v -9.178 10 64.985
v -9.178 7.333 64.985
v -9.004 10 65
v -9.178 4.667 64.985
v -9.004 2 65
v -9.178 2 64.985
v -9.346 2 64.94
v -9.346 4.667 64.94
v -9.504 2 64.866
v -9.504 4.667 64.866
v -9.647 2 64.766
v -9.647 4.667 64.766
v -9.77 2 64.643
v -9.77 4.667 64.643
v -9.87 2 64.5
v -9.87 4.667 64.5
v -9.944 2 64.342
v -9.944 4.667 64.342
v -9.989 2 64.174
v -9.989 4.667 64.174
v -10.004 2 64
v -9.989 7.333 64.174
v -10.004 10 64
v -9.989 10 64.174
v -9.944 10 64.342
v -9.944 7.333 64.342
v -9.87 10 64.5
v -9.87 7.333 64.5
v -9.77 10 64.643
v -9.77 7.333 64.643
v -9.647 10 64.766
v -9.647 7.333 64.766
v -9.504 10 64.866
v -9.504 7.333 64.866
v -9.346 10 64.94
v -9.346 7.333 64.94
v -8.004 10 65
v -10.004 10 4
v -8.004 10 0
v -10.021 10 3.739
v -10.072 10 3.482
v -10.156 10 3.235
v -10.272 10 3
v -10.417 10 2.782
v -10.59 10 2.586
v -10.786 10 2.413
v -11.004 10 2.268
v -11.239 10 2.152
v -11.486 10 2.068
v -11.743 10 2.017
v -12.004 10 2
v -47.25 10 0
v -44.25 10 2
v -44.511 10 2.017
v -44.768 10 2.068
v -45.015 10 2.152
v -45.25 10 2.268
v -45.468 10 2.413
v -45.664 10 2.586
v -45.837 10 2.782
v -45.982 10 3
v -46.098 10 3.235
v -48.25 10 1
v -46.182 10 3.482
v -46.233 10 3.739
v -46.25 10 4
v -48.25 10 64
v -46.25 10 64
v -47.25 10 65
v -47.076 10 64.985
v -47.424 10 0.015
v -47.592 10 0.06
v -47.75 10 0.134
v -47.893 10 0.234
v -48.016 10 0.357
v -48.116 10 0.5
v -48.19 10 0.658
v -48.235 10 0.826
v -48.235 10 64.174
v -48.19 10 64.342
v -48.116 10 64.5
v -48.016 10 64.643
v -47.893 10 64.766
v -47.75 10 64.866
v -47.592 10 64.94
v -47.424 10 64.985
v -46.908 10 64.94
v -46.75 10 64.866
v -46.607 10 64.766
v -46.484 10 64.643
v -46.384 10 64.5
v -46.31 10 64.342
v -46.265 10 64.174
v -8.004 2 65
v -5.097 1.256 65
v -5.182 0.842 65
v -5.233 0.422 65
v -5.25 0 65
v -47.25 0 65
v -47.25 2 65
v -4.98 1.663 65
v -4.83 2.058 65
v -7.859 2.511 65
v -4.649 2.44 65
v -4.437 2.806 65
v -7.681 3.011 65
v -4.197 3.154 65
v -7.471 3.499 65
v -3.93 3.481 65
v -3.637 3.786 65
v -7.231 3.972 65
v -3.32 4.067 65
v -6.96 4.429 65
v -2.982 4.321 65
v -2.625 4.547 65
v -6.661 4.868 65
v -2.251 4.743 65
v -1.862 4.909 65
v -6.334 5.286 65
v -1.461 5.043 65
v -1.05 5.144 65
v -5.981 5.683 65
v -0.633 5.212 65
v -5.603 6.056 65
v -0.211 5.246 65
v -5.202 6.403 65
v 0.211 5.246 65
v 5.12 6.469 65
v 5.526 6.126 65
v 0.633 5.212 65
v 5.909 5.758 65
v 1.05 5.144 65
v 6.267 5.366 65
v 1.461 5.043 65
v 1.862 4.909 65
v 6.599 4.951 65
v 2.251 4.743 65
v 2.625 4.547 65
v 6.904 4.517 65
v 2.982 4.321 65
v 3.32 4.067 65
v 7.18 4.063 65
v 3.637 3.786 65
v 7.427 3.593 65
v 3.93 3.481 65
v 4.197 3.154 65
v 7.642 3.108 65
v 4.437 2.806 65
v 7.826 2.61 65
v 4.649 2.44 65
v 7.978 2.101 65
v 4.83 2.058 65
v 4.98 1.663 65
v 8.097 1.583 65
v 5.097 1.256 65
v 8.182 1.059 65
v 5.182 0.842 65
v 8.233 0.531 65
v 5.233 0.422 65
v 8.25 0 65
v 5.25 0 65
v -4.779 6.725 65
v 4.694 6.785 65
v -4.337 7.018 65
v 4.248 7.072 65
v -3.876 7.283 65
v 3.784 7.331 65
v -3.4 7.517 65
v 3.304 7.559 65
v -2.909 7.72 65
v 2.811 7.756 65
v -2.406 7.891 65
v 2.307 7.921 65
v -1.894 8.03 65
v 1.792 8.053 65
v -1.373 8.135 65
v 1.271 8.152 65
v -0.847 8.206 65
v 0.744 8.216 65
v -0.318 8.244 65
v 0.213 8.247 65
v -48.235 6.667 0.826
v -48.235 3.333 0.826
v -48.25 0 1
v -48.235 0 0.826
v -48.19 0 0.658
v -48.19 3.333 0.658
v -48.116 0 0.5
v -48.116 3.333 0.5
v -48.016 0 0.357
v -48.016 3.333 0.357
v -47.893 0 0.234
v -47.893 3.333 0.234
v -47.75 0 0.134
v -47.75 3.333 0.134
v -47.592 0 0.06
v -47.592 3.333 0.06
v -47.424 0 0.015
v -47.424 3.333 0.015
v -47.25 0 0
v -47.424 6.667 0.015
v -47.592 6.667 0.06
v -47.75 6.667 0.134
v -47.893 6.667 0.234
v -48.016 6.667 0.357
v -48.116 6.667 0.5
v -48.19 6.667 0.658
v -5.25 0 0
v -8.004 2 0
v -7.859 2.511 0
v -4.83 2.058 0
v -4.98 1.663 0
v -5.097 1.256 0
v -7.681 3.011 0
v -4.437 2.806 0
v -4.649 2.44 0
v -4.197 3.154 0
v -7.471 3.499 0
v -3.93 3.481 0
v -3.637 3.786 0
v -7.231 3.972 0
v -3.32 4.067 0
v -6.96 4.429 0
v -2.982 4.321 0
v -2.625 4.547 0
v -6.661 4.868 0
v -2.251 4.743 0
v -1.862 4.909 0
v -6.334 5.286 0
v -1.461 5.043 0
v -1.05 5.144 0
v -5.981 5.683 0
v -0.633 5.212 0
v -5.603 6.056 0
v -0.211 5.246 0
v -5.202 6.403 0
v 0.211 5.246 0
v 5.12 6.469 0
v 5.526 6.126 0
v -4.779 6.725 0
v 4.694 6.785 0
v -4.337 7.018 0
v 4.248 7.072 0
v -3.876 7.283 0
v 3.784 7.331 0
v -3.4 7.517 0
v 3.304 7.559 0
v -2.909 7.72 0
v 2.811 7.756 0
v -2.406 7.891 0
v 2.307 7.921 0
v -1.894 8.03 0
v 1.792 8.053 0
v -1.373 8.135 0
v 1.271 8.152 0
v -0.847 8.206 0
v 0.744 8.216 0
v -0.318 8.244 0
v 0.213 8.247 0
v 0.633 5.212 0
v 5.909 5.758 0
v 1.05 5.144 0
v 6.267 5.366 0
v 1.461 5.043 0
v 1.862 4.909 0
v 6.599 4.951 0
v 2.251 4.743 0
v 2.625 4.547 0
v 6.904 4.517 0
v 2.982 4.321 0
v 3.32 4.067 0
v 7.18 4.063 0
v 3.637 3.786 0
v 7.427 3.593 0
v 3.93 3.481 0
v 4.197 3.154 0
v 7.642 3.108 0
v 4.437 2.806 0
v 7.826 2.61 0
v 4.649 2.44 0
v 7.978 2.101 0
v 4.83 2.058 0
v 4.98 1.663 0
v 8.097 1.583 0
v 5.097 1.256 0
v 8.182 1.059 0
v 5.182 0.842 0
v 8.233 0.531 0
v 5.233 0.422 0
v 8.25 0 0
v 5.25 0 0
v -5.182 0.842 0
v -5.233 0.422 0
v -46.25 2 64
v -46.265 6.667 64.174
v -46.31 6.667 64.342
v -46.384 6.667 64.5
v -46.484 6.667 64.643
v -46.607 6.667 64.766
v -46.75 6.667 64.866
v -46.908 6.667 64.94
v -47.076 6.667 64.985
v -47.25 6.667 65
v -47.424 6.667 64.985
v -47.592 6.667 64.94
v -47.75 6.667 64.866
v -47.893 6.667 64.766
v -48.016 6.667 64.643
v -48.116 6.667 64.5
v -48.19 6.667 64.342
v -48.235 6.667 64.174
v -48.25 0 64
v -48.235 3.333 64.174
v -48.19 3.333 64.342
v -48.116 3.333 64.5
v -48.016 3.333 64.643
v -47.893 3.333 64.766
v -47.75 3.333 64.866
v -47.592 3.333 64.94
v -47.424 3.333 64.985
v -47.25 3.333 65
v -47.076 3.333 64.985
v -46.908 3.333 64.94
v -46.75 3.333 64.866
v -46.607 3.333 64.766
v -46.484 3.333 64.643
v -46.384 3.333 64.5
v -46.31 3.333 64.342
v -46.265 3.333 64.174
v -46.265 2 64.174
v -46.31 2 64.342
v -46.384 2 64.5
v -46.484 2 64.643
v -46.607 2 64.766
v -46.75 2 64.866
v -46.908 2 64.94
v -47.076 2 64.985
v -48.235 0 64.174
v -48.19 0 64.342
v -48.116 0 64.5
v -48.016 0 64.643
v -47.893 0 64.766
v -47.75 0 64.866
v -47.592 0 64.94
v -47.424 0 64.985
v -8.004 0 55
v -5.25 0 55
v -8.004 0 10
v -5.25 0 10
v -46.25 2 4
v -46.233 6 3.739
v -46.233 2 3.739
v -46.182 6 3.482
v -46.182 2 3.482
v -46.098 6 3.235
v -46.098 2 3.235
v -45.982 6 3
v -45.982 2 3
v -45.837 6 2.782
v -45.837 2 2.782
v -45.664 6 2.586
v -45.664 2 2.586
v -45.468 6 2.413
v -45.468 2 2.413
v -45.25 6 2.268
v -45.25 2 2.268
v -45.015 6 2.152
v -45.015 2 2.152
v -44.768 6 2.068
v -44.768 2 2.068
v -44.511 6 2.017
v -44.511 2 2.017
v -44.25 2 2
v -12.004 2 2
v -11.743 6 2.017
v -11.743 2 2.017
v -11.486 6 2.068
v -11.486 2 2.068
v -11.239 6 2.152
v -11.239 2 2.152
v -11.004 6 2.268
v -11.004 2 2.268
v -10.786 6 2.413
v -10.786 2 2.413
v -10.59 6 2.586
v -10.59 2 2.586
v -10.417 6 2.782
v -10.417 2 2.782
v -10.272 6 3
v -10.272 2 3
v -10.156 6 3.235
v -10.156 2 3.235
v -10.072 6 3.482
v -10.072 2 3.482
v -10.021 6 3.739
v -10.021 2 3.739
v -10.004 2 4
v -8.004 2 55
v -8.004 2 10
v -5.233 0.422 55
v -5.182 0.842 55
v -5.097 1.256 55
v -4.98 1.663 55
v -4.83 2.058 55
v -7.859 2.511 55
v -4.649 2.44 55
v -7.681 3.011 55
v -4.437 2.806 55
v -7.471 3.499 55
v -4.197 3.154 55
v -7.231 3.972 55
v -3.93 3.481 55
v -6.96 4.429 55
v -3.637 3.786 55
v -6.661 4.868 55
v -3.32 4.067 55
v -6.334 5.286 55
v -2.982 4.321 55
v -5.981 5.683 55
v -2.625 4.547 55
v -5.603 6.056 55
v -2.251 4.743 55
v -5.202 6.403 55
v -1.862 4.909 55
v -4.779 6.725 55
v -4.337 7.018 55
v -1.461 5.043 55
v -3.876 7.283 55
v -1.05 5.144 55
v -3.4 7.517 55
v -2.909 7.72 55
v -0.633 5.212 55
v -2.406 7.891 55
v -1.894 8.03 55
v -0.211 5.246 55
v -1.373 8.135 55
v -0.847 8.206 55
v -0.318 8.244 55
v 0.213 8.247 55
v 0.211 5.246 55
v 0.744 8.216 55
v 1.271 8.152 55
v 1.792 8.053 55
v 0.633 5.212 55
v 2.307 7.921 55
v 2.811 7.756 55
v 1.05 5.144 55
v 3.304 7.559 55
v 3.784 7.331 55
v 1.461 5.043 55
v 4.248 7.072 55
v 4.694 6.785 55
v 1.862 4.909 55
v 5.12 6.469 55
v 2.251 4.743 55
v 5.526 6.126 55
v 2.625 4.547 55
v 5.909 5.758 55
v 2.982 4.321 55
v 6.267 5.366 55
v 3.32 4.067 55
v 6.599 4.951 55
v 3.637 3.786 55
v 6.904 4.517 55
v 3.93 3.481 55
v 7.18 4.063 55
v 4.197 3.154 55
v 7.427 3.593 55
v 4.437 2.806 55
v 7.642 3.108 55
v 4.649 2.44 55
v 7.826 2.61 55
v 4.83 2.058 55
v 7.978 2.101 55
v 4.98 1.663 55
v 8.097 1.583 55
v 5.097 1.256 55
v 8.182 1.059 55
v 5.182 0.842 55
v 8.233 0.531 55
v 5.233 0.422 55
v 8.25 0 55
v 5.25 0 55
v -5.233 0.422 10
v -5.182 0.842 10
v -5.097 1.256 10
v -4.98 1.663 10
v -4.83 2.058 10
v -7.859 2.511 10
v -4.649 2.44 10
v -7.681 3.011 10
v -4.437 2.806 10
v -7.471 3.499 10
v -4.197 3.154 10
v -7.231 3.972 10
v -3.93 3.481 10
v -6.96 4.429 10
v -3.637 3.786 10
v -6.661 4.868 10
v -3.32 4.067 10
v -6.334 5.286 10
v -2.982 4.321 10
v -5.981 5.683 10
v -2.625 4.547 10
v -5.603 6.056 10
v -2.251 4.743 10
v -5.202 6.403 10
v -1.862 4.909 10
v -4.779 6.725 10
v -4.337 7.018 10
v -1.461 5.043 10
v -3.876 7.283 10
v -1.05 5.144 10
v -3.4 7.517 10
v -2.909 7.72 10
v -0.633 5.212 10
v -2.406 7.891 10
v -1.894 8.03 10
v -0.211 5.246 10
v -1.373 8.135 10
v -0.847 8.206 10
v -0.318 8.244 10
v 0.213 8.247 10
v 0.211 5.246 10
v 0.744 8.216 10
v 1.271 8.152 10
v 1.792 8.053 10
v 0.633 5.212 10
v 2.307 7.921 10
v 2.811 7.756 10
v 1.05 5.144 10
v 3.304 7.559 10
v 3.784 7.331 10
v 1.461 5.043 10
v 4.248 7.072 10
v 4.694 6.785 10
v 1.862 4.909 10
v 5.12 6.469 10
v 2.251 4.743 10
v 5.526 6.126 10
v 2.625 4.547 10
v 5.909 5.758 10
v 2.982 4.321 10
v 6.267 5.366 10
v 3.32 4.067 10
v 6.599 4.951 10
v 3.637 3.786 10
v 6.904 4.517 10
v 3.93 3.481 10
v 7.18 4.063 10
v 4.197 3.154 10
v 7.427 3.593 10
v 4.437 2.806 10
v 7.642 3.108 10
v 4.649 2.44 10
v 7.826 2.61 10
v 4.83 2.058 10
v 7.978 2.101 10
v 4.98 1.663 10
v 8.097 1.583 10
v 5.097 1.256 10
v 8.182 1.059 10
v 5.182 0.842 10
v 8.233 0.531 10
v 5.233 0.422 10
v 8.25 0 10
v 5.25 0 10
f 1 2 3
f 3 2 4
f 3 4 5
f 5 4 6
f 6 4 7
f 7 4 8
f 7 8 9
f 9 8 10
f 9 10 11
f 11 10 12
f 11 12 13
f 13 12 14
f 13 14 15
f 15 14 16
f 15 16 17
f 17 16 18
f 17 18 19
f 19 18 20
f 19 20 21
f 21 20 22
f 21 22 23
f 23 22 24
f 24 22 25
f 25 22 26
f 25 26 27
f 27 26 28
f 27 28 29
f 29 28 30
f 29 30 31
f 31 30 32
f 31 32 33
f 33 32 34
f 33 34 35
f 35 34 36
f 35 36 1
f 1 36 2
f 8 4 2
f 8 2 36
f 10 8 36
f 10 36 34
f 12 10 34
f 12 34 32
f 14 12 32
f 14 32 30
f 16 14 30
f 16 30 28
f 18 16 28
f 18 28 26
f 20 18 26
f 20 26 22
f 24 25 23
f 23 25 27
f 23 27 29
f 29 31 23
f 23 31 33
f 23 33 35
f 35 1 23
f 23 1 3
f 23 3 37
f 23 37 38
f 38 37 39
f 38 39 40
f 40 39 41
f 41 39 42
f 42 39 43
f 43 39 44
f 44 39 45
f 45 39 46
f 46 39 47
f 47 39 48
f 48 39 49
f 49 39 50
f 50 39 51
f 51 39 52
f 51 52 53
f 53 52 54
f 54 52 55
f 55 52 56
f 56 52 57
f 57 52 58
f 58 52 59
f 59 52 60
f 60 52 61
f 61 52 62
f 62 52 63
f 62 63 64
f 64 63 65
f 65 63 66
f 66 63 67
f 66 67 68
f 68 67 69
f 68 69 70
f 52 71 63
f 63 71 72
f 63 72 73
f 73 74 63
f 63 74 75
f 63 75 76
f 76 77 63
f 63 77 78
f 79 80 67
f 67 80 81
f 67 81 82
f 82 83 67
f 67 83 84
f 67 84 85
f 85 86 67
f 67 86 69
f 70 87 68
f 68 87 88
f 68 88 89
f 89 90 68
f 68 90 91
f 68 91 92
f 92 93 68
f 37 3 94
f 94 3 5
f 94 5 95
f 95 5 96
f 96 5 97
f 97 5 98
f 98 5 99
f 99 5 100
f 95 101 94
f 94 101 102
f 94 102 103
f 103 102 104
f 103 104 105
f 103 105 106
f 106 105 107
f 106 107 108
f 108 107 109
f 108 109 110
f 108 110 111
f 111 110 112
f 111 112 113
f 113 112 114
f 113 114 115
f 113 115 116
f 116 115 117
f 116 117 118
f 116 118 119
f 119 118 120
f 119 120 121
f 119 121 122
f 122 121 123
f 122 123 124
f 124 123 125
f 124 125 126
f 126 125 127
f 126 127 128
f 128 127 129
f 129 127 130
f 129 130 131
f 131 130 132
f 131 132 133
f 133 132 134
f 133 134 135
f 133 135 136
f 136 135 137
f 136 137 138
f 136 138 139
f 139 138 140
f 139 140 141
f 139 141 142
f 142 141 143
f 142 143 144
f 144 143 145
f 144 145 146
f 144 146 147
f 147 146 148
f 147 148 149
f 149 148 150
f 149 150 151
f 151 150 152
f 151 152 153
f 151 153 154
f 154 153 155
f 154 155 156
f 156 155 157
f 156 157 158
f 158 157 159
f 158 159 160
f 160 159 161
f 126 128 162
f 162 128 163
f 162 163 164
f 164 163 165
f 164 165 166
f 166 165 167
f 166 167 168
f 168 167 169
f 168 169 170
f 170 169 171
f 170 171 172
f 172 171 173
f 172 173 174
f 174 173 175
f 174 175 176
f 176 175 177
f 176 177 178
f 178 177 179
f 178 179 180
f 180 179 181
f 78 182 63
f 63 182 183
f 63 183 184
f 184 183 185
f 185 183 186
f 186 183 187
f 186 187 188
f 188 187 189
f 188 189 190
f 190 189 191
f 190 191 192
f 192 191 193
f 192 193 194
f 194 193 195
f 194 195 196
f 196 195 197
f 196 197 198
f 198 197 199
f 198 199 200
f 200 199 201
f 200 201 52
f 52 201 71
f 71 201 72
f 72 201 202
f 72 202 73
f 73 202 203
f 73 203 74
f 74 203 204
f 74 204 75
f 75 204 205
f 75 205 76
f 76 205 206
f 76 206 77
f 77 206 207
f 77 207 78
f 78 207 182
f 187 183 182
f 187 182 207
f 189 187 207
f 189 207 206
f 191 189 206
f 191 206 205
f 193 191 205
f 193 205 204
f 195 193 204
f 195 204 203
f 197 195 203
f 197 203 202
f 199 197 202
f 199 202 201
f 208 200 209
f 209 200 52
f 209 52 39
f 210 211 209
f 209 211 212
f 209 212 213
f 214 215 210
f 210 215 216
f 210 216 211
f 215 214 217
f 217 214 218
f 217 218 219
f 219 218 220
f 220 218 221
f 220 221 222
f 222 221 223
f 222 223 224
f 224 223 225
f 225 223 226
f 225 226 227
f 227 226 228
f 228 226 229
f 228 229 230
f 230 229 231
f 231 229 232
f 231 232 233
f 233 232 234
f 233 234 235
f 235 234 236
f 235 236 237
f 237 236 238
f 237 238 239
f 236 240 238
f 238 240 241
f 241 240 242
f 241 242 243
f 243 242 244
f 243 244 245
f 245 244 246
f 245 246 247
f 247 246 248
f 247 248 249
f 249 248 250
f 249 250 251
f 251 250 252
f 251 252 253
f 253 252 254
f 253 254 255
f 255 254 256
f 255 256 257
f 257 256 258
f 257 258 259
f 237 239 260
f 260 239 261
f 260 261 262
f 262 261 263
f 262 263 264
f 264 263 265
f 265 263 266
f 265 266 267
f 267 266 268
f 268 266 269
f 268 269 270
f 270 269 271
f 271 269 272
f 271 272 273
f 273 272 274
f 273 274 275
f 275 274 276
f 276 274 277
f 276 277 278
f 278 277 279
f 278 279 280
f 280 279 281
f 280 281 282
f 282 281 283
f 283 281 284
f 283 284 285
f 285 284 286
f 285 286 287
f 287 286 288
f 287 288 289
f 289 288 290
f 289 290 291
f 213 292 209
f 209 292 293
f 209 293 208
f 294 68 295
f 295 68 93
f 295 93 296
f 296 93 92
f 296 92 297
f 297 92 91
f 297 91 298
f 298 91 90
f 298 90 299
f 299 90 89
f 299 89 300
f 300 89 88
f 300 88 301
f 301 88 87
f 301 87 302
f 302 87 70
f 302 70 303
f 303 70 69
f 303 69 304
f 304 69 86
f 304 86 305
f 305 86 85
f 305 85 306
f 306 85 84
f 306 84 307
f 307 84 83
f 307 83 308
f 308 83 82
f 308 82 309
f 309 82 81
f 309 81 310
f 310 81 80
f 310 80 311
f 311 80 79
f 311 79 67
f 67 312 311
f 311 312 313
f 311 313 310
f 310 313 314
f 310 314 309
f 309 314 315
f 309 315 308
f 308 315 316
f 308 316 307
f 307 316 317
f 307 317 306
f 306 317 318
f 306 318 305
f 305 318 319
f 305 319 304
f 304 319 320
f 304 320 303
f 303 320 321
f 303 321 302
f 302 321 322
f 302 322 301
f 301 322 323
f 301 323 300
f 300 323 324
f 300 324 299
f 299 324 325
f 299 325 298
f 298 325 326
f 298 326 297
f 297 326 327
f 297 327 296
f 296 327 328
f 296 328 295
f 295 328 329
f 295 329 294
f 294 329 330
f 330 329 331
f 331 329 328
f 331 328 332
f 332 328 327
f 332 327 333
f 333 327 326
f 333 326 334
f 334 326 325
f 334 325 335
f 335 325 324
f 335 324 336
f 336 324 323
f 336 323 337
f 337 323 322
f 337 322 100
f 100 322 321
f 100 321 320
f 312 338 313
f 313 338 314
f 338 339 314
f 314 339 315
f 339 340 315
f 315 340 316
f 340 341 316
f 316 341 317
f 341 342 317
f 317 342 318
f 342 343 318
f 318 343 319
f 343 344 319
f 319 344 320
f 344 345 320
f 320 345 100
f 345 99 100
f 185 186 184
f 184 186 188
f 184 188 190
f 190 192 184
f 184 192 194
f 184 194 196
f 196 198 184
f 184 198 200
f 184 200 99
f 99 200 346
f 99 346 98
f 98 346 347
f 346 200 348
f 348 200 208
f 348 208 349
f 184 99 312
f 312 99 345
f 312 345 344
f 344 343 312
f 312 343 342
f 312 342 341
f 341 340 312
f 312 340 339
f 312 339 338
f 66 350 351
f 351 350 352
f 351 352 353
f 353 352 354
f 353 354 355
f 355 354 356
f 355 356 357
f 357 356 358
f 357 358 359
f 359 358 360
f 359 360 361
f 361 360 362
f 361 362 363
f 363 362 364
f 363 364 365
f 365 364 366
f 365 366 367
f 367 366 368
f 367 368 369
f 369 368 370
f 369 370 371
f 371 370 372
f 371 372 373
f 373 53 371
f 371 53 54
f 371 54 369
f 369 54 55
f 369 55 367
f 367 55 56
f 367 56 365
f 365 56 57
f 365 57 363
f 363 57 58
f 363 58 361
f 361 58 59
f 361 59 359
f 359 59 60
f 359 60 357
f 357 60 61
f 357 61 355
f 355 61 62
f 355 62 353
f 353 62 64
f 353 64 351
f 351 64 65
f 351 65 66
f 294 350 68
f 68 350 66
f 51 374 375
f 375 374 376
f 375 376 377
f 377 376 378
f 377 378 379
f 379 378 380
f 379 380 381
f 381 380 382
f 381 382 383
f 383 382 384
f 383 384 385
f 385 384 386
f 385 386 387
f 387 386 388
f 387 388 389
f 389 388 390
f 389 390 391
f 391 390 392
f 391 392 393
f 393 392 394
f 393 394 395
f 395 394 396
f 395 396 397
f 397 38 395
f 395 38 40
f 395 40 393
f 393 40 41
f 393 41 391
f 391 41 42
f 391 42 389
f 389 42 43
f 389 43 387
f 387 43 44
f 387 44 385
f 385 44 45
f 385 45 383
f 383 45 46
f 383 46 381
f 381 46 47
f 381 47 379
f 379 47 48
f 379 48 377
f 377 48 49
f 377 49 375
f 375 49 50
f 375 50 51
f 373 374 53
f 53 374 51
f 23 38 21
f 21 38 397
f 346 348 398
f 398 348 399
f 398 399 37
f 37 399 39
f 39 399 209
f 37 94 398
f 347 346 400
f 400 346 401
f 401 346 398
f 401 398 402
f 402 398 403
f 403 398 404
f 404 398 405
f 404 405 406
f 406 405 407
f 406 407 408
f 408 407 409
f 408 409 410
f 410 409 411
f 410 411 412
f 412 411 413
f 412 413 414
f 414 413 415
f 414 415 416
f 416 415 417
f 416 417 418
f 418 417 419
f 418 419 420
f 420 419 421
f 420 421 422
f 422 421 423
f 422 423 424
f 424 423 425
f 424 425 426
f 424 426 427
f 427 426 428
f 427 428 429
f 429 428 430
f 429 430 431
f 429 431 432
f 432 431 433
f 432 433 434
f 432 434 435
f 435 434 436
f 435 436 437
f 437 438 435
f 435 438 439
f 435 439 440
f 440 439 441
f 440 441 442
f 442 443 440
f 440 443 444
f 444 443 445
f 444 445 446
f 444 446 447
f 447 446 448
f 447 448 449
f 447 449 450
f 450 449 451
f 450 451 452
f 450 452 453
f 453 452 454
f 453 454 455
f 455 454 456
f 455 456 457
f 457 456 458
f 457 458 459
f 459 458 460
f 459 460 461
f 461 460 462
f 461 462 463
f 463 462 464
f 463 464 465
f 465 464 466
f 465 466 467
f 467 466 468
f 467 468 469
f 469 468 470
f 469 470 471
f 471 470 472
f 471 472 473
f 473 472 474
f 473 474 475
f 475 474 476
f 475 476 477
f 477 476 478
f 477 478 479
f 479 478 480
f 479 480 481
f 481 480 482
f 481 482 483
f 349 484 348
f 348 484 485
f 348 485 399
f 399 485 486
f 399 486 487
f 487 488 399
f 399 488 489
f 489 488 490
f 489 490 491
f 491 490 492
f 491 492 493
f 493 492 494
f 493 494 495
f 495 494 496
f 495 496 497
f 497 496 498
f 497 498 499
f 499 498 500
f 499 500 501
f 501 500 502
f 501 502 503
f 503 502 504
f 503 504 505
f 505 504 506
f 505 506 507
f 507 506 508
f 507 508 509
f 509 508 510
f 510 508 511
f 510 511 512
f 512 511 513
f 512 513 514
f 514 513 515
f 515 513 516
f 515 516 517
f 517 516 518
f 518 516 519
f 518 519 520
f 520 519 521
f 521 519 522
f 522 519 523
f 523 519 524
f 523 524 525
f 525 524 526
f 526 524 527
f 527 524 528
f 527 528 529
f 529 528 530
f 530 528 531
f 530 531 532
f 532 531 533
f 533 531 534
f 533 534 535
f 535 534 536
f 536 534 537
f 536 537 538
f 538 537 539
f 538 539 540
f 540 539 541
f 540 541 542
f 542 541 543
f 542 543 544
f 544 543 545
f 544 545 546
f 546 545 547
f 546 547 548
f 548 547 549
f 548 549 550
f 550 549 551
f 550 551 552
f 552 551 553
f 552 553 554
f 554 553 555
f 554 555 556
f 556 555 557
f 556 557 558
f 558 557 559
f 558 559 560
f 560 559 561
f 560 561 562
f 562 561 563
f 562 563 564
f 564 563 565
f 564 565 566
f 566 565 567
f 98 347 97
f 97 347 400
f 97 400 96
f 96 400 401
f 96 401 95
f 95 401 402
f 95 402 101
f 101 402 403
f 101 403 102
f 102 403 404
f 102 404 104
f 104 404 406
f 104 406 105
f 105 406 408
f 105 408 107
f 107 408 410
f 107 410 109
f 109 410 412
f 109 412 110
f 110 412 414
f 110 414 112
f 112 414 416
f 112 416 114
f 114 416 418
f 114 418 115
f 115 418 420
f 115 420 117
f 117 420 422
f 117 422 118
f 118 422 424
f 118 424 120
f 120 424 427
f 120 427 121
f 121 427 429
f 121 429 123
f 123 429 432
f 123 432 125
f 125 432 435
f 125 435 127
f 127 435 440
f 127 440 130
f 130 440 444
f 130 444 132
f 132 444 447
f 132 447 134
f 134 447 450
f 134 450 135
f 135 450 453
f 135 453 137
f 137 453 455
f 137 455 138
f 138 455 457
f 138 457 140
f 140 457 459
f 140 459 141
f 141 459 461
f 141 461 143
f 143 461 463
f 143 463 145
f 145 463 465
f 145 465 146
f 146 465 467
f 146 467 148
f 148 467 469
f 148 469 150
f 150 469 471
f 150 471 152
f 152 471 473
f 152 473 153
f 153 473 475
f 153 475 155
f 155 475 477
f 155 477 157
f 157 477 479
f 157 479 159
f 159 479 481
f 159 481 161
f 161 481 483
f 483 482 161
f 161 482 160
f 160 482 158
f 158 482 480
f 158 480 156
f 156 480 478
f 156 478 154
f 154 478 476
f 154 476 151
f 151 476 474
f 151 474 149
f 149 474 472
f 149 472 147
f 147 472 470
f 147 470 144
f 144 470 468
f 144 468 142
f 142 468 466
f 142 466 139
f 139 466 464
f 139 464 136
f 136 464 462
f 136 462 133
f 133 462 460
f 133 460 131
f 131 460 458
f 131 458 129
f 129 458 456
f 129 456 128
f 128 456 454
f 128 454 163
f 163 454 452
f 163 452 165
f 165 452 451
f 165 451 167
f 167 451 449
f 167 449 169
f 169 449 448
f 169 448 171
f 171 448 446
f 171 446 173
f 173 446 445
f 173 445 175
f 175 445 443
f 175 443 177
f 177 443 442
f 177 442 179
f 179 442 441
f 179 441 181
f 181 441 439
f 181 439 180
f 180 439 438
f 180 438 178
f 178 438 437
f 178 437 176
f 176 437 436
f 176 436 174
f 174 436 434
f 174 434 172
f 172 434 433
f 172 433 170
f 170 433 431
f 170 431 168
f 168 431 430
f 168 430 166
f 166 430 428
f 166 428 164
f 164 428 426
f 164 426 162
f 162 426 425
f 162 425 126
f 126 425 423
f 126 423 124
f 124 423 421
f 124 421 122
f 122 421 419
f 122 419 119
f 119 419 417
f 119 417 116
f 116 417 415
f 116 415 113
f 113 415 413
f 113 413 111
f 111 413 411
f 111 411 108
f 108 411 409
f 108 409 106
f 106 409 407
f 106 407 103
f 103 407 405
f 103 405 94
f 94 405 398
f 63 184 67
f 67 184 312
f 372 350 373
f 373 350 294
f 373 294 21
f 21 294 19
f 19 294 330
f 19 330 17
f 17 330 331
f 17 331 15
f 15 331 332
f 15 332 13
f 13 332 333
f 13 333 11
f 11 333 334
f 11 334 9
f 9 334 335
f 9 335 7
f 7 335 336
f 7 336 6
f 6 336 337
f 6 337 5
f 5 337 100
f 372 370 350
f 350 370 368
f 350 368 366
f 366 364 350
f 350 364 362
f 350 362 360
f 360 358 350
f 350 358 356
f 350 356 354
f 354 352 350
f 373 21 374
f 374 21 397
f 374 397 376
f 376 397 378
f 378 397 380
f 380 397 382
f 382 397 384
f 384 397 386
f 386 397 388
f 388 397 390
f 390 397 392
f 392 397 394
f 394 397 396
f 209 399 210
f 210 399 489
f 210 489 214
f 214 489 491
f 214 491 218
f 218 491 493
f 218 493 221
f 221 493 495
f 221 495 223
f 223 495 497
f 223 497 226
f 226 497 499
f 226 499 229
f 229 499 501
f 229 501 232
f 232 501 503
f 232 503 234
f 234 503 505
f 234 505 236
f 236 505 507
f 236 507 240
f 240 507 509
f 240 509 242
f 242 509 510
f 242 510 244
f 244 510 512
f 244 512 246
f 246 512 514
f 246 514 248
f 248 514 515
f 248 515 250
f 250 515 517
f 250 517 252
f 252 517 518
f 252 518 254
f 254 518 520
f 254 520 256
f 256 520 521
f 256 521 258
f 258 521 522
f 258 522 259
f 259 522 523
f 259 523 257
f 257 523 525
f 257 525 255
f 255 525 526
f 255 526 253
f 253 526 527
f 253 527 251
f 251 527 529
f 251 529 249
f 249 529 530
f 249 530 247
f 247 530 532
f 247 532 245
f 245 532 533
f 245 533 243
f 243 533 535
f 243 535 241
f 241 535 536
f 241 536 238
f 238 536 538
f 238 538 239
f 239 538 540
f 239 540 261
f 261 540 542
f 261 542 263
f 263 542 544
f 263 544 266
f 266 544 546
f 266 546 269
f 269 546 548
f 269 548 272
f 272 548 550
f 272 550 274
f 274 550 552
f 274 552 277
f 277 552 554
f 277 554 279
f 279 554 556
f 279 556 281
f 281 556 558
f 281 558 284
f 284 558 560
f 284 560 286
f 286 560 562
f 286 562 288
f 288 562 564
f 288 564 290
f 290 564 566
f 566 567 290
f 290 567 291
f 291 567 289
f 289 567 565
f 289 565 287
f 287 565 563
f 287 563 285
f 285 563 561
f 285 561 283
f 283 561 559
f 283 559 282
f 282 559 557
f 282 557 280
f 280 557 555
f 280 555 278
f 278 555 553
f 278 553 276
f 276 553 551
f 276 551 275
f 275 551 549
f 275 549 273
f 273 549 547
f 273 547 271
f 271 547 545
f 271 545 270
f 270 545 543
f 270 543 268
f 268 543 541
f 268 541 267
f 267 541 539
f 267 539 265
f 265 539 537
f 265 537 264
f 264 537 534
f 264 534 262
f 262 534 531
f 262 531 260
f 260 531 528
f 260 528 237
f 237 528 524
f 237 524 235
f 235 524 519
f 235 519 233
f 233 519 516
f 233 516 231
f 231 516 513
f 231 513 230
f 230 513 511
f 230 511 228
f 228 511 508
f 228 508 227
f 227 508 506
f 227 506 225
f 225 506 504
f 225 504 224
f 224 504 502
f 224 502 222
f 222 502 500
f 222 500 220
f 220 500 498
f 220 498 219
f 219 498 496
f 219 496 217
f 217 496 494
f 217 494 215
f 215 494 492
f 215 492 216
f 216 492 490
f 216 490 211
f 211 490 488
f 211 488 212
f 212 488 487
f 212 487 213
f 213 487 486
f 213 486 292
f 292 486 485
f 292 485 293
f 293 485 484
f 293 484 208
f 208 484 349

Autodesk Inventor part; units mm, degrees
ref_plane "YZ Plane" through (0, 0, 0) normal (1, 0, 0) x (0, 1, 0)
ref_plane "XZ Plane" through (0, 0, 0) normal (0, 1, 0) x (-1, 0, 0)
ref_plane "XY Plane" through (0, 0, 0) normal (0, 0, 1) x (1, 0, 0)
sketch "Náčrt1" plane through (0, 0, 0) normal (0, 0, 1) x (1, 0, 0)
  circle A0 centre (0, 0) radius 5.25
  circle A1 centre (0, 0) radius 8.25
  line L0 (5.25, 0) -> (8.25, 0)
  line L1 (-8.25, 0) -> (-48.25, 0)
  line L2 (-8.25, 0) -> (-5.25, 0)
  line L3 (-48.25, 0) -> (-48.25, 2)
  line L4 (-48.25, 2) -> (-8.0039, 2)
  dimension "d0" = 10.5
  dimension "d1" = 3
  dimension "d2" = 40
  dimension "d3" = 2
extrude "Vysunutí1" add sketch "Náčrt1" along normal blind 65 contours A0 L2 A1 L0 | L1 L3 L4 A1 picked at (7.1703, 0.6574)
sketch "Náčrt2" plane through (-48.25, 2, 0) normal (0, 1, 0) x (1, 0, 0)
  line L0 (40.2461, 0) -> (40.2461, -65) projected
  line L1 (56.5, 0) -> (56.5, -65) projected
  line L2 (40.2461, -10) -> (56.5, -10)
  line L3 (56.5, -10) -> (56.5, -55)
  line L4 (56.5, -55) -> (40.2461, -55)
  line L5 (40.2461, -55) -> (40.2461, -10)
  line L6 (40.2461, 0) -> (56.5, 0) projected
  line L7 (40.2461, -65) -> (56.5, -65) projected
  point P0 (48.25, 0)
  dimension "d6" = 10
  dimension "d7" = 10
extrude "Vysunutí2" cut sketch "Náčrt2" along normal mid plane 65 contours L2 L1 L4 L0
sketch "Náčrt3" plane through (-48.25, 2, 0) normal (0, 1, 0) x (1, 0, 0)
  line L0 (0, 0) -> (0, -65) projected
  line L1 (40.2461, 0) -> (0, 0) projected
  line L2 (0, 0) -> (40.2461, 0)
  line L3 (40.2461, -65) -> (56.5, -65) projected
  line L4 (40.2461, 0) -> (40.2461, -65)
  line L5 (40.2461, -65) -> (38.2461, -65)
  line L6 (38.2461, -65) -> (38.2461, -2)
  line L7 (38.2461, -2) -> (2, -2)
  line L8 (2, -2) -> (2, -65)
  line L9 (0, -65) -> (2, -65)
  line L10 (0, -65) -> (0, 0)
  point P0 (48.25, 0)
  dimension "d10" = 2
  dimension "d11" = 2
  dimension "d12" = 2
  dimension "d13" = 2
  dimension "d14" = 2
extrude "Vysunutí3" add sketch "Náčrt3" along normal blind 8
fillet "Zaoblení1" radius 2 2 edges at (-10.0039, 6, 2) (-46.25, 6, 2)
fillet "Zaoblení2" radius 1 2 edges at (-48.25, 5, 65) (-48.25, 5, 0)
fillet "Zaoblení3" radius 1 2 edges at (-46.25, 6, 65) (-10.0039, 6, 65)
properties part number "DripCatcher"
